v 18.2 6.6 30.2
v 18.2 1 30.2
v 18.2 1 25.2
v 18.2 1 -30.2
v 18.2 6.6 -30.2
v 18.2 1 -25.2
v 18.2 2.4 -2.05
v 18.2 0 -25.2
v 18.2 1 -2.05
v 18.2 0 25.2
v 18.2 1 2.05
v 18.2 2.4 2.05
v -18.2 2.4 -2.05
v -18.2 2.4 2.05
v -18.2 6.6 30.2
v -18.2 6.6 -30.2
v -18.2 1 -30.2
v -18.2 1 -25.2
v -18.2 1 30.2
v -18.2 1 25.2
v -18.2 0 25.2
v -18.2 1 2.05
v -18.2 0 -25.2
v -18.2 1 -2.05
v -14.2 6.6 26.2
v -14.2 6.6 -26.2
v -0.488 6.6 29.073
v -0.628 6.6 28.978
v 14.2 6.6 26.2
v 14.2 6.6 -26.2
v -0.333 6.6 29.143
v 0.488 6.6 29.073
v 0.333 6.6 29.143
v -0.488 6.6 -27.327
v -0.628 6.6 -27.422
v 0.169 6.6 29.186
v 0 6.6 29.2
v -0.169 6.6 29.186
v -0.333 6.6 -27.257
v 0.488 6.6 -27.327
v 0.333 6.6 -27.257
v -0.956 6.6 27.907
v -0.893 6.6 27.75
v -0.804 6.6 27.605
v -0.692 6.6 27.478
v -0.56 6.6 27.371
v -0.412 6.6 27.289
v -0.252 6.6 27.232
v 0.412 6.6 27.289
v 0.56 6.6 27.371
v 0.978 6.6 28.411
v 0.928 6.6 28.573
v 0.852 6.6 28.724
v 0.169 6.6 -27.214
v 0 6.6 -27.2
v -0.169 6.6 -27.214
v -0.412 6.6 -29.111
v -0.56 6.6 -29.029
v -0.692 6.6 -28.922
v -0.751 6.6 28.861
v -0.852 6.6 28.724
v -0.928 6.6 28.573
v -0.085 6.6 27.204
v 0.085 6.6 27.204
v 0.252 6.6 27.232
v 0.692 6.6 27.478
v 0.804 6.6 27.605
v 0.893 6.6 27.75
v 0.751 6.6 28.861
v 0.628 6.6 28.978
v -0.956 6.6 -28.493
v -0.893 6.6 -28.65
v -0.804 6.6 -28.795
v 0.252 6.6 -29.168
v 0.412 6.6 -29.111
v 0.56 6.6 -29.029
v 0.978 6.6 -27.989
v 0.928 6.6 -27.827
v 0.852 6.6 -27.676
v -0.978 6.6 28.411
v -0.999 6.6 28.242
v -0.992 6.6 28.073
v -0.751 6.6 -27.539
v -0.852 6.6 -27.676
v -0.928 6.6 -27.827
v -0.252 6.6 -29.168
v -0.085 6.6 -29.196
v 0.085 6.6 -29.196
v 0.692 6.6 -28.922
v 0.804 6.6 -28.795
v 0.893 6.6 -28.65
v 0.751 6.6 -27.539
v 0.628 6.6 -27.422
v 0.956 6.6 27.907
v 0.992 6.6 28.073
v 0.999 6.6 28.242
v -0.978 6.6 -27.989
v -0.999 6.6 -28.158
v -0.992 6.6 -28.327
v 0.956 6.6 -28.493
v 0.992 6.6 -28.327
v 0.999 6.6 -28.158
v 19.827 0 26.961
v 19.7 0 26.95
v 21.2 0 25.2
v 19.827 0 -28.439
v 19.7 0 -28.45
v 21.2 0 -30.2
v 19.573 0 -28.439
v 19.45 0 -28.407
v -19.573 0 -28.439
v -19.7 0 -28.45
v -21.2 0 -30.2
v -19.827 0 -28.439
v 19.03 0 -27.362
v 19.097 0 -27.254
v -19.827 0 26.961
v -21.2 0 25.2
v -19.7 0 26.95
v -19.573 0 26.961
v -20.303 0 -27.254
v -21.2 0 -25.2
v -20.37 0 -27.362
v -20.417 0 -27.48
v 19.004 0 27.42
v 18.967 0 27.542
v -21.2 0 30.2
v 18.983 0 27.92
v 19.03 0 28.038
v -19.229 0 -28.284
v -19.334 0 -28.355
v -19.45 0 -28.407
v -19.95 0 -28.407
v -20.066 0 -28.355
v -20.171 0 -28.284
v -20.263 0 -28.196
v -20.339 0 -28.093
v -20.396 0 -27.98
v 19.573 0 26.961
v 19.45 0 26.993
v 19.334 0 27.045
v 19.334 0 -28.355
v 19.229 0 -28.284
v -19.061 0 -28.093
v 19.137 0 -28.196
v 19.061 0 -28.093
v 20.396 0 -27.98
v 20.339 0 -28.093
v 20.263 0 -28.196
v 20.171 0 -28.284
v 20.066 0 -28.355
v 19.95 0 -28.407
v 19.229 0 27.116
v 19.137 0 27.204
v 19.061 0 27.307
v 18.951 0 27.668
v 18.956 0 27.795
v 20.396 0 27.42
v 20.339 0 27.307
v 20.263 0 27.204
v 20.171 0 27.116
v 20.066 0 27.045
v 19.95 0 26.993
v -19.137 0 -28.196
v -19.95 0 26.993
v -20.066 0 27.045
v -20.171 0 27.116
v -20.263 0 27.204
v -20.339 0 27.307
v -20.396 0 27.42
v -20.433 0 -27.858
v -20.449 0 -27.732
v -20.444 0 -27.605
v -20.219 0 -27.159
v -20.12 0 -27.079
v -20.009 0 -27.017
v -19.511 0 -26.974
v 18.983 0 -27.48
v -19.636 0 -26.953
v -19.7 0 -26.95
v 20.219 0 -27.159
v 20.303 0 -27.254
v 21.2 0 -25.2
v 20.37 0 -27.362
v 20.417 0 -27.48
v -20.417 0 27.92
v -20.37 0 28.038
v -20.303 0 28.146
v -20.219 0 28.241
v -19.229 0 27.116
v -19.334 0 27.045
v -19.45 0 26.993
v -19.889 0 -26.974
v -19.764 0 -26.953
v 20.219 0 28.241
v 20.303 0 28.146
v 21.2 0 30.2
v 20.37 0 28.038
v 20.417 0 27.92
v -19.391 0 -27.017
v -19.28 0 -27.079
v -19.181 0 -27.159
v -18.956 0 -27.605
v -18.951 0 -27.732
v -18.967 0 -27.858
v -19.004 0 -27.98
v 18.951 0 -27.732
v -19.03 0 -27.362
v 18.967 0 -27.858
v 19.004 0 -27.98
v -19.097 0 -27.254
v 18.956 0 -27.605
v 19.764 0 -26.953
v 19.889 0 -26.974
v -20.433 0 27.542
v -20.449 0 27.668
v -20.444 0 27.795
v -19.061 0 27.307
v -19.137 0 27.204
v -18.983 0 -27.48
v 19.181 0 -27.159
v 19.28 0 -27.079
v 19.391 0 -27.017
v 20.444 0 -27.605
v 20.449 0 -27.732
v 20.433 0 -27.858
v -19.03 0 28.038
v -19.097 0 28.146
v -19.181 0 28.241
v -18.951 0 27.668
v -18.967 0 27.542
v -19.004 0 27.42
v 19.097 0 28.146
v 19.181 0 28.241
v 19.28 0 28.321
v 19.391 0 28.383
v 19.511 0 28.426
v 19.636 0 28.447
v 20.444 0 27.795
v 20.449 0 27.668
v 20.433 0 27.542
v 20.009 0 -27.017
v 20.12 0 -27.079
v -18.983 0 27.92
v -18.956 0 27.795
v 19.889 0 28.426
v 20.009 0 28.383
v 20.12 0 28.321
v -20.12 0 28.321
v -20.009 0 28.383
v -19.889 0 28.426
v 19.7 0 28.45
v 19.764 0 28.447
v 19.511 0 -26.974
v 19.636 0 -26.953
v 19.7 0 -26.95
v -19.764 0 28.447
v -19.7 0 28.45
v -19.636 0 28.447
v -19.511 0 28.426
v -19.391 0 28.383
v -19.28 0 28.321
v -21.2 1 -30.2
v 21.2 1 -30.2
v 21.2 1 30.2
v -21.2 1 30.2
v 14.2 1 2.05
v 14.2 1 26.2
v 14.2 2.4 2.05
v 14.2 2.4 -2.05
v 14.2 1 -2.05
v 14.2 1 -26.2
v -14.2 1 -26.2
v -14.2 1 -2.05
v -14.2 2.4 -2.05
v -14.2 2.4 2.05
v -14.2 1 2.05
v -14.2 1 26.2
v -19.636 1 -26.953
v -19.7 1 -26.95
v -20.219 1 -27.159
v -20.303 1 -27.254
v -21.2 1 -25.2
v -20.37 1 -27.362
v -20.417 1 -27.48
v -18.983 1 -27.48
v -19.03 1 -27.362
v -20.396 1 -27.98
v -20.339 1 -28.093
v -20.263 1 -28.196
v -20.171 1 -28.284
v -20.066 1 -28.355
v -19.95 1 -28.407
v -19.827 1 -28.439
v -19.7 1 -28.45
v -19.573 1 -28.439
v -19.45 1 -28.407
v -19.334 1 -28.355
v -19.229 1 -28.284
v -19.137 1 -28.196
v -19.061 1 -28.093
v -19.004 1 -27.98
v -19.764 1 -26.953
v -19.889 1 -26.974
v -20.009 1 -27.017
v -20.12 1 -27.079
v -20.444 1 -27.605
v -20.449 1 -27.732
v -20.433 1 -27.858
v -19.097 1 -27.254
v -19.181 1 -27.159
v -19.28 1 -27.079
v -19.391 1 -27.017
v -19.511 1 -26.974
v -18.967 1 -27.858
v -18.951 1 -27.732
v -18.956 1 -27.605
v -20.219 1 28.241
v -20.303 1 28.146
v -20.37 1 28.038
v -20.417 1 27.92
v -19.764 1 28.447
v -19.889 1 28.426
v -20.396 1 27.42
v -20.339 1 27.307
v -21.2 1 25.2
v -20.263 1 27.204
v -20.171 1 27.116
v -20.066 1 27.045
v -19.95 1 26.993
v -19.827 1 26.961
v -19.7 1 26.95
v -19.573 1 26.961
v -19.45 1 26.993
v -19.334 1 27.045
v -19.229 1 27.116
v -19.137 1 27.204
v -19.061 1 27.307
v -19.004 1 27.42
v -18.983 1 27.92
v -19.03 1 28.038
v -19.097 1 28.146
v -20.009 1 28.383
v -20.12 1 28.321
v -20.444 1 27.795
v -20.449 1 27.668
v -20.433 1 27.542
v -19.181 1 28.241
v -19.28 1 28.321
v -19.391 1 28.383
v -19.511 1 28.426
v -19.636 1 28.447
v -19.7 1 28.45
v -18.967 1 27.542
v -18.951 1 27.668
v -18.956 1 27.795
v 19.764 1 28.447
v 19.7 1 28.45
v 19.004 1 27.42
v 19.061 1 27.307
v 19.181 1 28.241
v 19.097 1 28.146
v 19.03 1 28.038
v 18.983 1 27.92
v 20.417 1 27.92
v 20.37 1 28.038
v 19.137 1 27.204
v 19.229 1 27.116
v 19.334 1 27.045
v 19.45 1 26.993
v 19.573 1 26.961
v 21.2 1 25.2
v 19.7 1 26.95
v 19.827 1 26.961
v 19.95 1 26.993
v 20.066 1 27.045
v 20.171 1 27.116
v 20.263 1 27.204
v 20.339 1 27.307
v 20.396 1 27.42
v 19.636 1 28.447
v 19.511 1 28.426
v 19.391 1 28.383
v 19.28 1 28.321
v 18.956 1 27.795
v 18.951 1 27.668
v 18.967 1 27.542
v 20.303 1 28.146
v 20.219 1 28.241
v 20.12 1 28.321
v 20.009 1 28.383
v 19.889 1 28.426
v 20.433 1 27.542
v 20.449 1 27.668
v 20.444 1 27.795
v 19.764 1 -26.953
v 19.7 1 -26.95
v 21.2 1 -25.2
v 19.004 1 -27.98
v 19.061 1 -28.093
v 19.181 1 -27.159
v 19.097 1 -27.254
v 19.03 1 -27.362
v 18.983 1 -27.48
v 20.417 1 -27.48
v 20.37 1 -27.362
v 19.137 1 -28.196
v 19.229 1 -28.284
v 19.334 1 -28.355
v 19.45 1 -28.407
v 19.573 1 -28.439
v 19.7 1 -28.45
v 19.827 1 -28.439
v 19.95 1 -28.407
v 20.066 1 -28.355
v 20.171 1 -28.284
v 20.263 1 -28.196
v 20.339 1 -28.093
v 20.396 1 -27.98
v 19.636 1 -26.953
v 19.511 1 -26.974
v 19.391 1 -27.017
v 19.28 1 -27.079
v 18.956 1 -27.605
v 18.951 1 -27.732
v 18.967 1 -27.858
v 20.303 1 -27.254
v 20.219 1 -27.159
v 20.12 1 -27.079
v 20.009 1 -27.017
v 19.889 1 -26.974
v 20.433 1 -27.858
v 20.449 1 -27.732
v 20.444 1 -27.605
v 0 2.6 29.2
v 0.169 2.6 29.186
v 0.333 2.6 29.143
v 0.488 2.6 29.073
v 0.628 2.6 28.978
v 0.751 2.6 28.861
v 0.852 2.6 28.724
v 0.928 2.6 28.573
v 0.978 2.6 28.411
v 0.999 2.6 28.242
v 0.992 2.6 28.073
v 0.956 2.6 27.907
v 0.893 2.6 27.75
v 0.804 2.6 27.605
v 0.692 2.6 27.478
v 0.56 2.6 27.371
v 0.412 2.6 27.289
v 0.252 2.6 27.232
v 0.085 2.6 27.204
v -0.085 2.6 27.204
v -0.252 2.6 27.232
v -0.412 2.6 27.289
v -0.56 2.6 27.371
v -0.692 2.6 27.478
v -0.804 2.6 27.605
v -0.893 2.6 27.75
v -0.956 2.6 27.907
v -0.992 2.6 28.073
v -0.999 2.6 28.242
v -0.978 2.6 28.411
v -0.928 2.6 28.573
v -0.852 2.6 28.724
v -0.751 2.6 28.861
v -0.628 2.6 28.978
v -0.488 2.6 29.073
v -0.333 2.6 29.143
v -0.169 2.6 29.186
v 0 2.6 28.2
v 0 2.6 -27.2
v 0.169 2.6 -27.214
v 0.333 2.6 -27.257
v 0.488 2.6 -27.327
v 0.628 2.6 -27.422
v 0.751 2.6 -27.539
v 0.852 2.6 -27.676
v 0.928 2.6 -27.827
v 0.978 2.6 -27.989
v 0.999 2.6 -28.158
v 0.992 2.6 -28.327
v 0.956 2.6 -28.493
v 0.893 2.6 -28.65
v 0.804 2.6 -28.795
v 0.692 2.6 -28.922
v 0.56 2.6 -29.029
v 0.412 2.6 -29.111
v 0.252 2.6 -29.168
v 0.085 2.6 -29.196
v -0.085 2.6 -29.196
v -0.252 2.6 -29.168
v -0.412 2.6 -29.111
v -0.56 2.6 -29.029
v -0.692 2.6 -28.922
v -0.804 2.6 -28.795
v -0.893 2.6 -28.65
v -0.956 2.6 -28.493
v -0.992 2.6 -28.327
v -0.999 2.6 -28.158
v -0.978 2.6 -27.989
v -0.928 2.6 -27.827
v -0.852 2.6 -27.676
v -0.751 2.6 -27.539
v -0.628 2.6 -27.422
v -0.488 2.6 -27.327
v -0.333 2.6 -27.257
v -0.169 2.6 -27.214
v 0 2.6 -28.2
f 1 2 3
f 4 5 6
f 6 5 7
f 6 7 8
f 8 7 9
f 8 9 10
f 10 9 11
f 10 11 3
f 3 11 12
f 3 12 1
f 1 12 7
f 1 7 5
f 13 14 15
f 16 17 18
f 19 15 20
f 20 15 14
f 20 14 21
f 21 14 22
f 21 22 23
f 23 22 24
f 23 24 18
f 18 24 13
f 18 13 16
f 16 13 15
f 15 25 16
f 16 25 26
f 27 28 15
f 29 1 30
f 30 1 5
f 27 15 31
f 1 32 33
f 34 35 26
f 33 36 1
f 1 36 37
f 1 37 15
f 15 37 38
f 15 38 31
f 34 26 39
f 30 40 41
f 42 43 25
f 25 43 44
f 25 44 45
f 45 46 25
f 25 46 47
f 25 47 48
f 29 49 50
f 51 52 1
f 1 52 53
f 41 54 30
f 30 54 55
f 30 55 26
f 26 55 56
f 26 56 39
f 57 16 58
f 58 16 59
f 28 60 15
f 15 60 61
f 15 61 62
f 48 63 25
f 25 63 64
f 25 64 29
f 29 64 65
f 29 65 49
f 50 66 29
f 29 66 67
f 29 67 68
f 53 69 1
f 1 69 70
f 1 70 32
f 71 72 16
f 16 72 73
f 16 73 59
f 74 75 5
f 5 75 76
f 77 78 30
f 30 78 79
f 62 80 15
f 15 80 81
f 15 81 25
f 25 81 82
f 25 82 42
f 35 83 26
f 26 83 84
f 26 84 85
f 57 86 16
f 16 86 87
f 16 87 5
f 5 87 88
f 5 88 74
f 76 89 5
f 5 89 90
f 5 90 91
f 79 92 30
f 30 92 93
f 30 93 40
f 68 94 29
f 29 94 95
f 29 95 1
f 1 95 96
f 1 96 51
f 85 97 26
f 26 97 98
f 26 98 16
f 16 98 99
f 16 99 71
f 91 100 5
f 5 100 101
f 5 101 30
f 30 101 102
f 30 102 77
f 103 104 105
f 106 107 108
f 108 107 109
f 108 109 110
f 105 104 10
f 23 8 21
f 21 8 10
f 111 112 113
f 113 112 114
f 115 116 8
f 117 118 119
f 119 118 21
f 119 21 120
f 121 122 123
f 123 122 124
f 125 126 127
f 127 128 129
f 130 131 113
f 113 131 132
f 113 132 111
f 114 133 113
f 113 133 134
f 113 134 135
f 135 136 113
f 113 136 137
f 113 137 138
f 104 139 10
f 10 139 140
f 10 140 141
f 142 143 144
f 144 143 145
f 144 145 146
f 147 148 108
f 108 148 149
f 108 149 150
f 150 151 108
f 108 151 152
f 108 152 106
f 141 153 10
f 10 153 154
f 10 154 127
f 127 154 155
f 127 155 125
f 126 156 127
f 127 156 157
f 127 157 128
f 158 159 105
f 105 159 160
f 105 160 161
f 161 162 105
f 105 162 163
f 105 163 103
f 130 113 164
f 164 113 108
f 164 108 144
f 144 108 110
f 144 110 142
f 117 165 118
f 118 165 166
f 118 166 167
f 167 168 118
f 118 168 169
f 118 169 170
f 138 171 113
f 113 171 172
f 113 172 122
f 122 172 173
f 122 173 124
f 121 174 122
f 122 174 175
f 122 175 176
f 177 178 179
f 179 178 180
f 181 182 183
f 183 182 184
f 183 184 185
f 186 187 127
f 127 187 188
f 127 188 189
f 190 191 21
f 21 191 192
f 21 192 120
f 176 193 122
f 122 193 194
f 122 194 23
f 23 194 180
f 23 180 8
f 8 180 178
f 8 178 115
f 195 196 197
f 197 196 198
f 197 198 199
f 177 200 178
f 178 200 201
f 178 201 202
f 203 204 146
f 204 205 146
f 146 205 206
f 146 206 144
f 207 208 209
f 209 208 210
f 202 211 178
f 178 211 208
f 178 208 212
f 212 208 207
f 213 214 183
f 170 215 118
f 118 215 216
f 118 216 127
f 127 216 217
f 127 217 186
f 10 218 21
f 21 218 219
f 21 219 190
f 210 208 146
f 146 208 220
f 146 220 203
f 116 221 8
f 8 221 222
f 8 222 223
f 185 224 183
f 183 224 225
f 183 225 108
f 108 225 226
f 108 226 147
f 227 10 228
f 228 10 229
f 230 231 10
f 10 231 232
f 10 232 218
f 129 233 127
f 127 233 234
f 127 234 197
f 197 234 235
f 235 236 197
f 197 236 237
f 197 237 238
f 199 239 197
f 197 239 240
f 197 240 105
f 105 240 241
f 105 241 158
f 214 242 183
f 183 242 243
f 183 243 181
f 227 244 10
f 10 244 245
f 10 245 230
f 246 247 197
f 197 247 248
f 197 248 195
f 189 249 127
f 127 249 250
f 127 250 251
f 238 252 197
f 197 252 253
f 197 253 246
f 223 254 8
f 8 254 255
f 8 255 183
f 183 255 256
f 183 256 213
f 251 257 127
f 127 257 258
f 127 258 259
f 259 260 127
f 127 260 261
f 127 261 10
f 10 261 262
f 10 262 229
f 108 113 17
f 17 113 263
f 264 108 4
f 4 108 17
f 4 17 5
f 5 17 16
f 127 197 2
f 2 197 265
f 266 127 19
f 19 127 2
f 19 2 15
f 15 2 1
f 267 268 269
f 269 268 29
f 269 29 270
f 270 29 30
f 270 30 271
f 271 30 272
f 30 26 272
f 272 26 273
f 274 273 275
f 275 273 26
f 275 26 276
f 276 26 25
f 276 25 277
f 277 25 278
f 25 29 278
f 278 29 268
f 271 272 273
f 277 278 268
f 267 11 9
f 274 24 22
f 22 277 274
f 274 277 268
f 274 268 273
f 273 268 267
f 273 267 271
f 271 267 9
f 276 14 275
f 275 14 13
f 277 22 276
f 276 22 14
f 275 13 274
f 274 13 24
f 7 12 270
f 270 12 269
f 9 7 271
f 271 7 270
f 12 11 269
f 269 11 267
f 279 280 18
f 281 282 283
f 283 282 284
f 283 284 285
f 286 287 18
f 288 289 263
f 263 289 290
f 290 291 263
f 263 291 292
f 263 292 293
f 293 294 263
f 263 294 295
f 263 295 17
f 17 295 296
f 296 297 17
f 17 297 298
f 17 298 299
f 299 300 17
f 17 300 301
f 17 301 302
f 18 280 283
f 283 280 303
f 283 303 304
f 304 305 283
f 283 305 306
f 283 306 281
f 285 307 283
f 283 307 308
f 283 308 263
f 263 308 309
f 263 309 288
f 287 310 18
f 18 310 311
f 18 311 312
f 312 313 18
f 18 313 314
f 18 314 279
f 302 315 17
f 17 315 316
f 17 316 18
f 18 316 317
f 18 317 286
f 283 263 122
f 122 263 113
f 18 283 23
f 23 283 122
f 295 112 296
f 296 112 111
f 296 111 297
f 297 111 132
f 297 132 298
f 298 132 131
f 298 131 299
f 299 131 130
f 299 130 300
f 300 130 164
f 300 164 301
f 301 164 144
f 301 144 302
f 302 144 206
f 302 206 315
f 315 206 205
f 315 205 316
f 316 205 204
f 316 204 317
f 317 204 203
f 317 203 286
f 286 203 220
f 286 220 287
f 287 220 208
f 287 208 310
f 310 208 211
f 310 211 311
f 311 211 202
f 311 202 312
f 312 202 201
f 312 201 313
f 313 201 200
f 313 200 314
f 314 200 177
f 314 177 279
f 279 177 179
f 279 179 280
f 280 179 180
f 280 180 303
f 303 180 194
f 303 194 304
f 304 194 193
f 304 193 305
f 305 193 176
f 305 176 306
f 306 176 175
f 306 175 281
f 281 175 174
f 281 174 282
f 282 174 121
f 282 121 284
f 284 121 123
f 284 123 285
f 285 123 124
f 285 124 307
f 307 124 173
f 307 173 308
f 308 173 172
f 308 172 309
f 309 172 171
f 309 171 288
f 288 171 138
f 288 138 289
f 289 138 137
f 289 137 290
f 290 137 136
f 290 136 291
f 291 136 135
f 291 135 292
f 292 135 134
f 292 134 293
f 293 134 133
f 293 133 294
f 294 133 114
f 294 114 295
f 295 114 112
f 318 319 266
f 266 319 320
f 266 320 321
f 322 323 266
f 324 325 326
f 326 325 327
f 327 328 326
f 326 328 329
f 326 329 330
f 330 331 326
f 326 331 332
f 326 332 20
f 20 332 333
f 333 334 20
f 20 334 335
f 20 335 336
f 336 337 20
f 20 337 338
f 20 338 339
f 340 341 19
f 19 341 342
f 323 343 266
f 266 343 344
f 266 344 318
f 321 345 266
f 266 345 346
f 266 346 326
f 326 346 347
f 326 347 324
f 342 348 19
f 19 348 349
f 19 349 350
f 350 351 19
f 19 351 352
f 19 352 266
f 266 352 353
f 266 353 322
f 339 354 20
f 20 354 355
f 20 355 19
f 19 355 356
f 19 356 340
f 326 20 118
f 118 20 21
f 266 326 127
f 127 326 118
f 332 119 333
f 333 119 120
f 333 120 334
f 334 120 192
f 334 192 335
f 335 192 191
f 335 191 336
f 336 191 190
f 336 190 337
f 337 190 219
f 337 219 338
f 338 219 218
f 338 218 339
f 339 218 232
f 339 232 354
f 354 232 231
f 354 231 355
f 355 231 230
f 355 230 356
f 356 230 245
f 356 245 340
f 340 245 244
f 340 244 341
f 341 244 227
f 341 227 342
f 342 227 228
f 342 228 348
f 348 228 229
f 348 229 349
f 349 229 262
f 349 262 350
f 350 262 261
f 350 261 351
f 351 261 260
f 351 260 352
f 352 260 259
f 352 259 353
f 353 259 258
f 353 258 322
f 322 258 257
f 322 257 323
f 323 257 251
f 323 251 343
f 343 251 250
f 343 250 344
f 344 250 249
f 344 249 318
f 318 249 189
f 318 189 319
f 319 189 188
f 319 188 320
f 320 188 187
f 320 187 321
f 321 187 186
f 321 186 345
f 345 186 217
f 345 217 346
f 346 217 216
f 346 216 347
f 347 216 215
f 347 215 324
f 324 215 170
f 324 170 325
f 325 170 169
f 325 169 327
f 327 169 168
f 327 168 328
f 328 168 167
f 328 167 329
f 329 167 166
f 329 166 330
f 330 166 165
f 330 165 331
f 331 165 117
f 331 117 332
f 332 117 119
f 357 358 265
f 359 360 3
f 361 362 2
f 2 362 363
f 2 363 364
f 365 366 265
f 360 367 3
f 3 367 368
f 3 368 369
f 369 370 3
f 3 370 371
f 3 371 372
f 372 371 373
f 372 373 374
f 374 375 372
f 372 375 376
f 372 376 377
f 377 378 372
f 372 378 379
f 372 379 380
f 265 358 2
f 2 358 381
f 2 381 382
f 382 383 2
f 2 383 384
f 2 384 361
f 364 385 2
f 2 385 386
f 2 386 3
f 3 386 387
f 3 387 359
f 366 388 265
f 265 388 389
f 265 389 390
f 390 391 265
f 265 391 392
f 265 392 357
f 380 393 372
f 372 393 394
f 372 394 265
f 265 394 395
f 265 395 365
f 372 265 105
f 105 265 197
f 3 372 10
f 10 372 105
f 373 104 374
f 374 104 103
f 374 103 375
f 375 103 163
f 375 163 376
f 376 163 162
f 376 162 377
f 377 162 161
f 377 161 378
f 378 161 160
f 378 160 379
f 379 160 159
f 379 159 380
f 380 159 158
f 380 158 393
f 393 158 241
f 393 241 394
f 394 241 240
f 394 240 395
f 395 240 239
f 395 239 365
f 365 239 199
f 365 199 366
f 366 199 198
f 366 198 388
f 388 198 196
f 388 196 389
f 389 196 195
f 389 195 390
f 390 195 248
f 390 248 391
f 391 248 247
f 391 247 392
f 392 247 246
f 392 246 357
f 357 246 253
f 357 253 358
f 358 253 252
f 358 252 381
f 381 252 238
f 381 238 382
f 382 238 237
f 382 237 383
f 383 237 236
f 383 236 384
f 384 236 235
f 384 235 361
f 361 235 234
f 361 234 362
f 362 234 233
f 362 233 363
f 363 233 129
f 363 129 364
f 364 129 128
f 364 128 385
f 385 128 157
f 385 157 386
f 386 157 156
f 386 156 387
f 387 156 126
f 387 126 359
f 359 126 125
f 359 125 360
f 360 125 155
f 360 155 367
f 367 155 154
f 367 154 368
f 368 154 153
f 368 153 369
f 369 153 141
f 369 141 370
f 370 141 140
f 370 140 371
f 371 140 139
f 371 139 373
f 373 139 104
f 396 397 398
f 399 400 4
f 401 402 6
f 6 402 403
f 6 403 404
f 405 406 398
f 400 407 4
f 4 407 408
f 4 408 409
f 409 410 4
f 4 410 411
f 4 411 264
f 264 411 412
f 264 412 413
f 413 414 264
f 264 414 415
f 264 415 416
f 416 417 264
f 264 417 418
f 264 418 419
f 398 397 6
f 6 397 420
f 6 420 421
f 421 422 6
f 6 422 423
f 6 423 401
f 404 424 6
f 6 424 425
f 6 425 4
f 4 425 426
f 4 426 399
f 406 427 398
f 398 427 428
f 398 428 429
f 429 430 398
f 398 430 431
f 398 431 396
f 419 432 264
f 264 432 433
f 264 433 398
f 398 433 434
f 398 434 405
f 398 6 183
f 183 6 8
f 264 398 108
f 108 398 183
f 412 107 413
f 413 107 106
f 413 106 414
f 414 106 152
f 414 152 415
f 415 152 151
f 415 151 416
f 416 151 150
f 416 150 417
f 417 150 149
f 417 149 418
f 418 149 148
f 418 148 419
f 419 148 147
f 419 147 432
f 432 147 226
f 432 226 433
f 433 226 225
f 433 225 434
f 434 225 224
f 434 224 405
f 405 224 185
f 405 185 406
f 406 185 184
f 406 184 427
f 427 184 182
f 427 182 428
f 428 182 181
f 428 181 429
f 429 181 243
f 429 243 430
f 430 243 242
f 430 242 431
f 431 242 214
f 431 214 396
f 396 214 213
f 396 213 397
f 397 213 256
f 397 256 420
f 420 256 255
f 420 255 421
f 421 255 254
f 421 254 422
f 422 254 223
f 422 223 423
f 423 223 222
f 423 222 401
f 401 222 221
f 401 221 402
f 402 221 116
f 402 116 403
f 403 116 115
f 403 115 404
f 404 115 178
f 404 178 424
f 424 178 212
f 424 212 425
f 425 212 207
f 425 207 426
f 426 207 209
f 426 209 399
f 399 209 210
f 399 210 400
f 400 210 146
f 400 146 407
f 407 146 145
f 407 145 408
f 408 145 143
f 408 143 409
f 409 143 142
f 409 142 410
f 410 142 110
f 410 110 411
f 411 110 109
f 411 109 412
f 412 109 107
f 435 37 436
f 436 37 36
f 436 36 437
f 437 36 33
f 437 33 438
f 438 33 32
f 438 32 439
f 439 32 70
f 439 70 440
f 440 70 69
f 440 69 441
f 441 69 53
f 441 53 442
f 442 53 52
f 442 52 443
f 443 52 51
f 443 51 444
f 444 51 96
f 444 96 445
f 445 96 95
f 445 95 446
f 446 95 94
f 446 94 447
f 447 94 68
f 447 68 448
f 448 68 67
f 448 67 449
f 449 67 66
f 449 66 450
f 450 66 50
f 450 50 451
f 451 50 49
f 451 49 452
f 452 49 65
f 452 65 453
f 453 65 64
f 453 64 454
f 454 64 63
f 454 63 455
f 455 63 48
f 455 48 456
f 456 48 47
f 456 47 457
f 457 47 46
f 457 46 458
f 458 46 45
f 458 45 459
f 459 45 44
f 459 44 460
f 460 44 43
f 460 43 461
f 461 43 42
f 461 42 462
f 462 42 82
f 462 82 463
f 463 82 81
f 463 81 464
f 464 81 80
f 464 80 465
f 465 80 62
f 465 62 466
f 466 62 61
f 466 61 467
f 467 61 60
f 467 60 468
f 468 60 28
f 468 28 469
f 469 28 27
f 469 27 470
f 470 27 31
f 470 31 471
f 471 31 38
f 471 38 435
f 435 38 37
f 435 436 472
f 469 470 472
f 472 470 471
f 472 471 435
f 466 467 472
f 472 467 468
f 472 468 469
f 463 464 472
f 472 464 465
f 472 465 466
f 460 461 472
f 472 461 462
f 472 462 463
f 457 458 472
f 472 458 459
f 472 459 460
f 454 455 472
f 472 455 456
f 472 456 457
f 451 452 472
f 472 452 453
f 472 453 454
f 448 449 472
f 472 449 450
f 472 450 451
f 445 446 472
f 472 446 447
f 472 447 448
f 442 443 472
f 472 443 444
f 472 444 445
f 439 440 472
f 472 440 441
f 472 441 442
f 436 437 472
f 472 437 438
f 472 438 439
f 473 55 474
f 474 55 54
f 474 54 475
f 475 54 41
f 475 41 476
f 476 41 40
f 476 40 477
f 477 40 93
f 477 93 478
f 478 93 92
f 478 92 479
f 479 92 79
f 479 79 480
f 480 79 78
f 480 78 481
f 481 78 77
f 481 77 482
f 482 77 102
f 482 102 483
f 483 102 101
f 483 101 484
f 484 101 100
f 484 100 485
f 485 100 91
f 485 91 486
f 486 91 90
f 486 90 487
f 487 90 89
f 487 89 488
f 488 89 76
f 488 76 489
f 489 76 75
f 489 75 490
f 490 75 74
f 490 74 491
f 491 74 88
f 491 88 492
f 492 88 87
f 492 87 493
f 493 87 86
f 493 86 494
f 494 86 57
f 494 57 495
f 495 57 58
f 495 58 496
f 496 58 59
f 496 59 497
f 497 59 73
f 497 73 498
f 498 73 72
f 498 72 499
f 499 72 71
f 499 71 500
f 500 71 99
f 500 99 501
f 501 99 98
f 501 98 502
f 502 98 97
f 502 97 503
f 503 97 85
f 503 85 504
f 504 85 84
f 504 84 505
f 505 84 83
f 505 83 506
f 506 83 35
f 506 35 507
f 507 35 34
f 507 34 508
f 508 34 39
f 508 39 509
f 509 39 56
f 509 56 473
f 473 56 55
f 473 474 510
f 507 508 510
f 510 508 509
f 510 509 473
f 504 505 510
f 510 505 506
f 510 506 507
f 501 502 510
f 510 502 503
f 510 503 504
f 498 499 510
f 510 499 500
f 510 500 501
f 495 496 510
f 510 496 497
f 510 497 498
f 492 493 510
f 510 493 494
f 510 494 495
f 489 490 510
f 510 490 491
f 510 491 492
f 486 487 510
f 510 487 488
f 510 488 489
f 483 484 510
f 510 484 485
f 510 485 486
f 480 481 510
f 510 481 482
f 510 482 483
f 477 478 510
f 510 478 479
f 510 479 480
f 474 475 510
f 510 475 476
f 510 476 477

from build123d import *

# Parameters (mm, degrees)
ESBO_O1_W                = 36.4
ESBO_O1_H                = 60.4
ESBO_O1_W_2              = 28.4
ESBO_O1_H_2              = 52.4
RESSALTO_EXTRUS_O1_DEPTH = 6.6
ESBO_O2_W                = 28.4
ESBO_O2_H                = 52.4
RESSALTO_EXTRUS_O2_DEPTH = 1
ESBO_O4_W                = 4.1
ESBO_O4_H                = 1.4
CORTE_EXTRUS_O2_DEPTH    = 38
ESBO_O5_W                = 3
ESBO_O5_H                = 5
ESBO_O5_R                = 0.75
RESSALTO_EXTRUS_O3_DEPTH = 1
ESBO_O6_R                = 1
CORTE_EXTRUS_O3_DEPTH    = 4


with BuildPart() as part:
    # Esboço1 → Ressalto-extrusão1 (new body)
    with BuildSketch(Plane(origin=(0, 0, 0), x_dir=(1, 0, 0), z_dir=(0, 1, 0))):
        Rectangle(ESBO_O1_W, ESBO_O1_H)
        Rectangle(ESBO_O1_W_2, ESBO_O1_H_2, mode=Mode.SUBTRACT)
    extrude(amount=RESSALTO_EXTRUS_O1_DEPTH)

    # Esboço2 → Ressalto-extrusão2 (add)
    with BuildSketch(Plane(origin=(0, 0, 0), x_dir=(1, 0, 0), z_dir=(0, 1, 0))):
        Rectangle(ESBO_O2_W, ESBO_O2_H)
    extrude(amount=RESSALTO_EXTRUS_O2_DEPTH)

    # Esboço4 → Corte-extrusão2 (cut)
    with BuildSketch(Plane(origin=(18.2, 0, 0), x_dir=(0, 0, -1), z_dir=(1, 0, 0))):
        with Locations((0, 1.7)):
            Rectangle(ESBO_O4_W, ESBO_O4_H)
    extrude(amount=-CORTE_EXTRUS_O2_DEPTH, mode=Mode.SUBTRACT)

    # Esboço5 → Ressalto-extrusão3 (add)
    # profile 1 of 4: a face of its own
    with BuildSketch(Plane(origin=(0, 0, 0), x_dir=(1, 0, 0), z_dir=(0, 1, 0))):
        with Locations((-19.7, 27.7)):
            Rectangle(ESBO_O5_W, ESBO_O5_H)
        with Locations(Location((-19.7, 27.7, 0), (0, 0, 270))):
            Circle(ESBO_O5_R, mode=Mode.SUBTRACT)
    # profile 2 of 4: a face of its own
    with BuildSketch(Plane(origin=(0, 0, 0), x_dir=(1, 0, 0), z_dir=(0, 1, 0))):
        with Locations((-19.7, -27.7)):
            Rectangle(ESBO_O5_W, ESBO_O5_H)
        with Locations(Location((-19.7, -27.7, 0), (0, 0, 270))):
            Circle(ESBO_O5_R, mode=Mode.SUBTRACT)
    # profile 3 of 4: a face of its own
    with BuildSketch(Plane(origin=(0, 0, 0), x_dir=(1, 0, 0), z_dir=(0, 1, 0))):
        with Locations((19.7, -27.7)):
            Rectangle(ESBO_O5_W, ESBO_O5_H)
        with Locations(Location((19.7, -27.7, 0), (0, 0, 270))):
            Circle(ESBO_O5_R, mode=Mode.SUBTRACT)
    # profile 4 of 4: a face of its own
    with BuildSketch(Plane(origin=(0, 0, 0), x_dir=(1, 0, 0), z_dir=(0, 1, 0))):
        with Locations((19.7, 27.7)):
            Rectangle(ESBO_O5_W, ESBO_O5_H)
        with Locations(Location((19.7, 27.7, 0), (0, 0, 270))):
            Circle(ESBO_O5_R, mode=Mode.SUBTRACT)
    extrude(amount=RESSALTO_EXTRUS_O3_DEPTH)

    # Esboço6 → Corte-extrusão3 (cut)
    with BuildSketch(Plane(origin=(0, 6.6, 0), x_dir=(1, 0, 0), z_dir=(0, 1, 0))):
        with Locations(Location((0, 28.2, 0), (0, 0, 270))):
            Circle(ESBO_O6_R)
        with Locations(Location((0, -28.2, 0), (0, 0, 270))):
            Circle(ESBO_O6_R)
    extrude(amount=-CORTE_EXTRUS_O3_DEPTH, mode=Mode.SUBTRACT)


solid = part.part
